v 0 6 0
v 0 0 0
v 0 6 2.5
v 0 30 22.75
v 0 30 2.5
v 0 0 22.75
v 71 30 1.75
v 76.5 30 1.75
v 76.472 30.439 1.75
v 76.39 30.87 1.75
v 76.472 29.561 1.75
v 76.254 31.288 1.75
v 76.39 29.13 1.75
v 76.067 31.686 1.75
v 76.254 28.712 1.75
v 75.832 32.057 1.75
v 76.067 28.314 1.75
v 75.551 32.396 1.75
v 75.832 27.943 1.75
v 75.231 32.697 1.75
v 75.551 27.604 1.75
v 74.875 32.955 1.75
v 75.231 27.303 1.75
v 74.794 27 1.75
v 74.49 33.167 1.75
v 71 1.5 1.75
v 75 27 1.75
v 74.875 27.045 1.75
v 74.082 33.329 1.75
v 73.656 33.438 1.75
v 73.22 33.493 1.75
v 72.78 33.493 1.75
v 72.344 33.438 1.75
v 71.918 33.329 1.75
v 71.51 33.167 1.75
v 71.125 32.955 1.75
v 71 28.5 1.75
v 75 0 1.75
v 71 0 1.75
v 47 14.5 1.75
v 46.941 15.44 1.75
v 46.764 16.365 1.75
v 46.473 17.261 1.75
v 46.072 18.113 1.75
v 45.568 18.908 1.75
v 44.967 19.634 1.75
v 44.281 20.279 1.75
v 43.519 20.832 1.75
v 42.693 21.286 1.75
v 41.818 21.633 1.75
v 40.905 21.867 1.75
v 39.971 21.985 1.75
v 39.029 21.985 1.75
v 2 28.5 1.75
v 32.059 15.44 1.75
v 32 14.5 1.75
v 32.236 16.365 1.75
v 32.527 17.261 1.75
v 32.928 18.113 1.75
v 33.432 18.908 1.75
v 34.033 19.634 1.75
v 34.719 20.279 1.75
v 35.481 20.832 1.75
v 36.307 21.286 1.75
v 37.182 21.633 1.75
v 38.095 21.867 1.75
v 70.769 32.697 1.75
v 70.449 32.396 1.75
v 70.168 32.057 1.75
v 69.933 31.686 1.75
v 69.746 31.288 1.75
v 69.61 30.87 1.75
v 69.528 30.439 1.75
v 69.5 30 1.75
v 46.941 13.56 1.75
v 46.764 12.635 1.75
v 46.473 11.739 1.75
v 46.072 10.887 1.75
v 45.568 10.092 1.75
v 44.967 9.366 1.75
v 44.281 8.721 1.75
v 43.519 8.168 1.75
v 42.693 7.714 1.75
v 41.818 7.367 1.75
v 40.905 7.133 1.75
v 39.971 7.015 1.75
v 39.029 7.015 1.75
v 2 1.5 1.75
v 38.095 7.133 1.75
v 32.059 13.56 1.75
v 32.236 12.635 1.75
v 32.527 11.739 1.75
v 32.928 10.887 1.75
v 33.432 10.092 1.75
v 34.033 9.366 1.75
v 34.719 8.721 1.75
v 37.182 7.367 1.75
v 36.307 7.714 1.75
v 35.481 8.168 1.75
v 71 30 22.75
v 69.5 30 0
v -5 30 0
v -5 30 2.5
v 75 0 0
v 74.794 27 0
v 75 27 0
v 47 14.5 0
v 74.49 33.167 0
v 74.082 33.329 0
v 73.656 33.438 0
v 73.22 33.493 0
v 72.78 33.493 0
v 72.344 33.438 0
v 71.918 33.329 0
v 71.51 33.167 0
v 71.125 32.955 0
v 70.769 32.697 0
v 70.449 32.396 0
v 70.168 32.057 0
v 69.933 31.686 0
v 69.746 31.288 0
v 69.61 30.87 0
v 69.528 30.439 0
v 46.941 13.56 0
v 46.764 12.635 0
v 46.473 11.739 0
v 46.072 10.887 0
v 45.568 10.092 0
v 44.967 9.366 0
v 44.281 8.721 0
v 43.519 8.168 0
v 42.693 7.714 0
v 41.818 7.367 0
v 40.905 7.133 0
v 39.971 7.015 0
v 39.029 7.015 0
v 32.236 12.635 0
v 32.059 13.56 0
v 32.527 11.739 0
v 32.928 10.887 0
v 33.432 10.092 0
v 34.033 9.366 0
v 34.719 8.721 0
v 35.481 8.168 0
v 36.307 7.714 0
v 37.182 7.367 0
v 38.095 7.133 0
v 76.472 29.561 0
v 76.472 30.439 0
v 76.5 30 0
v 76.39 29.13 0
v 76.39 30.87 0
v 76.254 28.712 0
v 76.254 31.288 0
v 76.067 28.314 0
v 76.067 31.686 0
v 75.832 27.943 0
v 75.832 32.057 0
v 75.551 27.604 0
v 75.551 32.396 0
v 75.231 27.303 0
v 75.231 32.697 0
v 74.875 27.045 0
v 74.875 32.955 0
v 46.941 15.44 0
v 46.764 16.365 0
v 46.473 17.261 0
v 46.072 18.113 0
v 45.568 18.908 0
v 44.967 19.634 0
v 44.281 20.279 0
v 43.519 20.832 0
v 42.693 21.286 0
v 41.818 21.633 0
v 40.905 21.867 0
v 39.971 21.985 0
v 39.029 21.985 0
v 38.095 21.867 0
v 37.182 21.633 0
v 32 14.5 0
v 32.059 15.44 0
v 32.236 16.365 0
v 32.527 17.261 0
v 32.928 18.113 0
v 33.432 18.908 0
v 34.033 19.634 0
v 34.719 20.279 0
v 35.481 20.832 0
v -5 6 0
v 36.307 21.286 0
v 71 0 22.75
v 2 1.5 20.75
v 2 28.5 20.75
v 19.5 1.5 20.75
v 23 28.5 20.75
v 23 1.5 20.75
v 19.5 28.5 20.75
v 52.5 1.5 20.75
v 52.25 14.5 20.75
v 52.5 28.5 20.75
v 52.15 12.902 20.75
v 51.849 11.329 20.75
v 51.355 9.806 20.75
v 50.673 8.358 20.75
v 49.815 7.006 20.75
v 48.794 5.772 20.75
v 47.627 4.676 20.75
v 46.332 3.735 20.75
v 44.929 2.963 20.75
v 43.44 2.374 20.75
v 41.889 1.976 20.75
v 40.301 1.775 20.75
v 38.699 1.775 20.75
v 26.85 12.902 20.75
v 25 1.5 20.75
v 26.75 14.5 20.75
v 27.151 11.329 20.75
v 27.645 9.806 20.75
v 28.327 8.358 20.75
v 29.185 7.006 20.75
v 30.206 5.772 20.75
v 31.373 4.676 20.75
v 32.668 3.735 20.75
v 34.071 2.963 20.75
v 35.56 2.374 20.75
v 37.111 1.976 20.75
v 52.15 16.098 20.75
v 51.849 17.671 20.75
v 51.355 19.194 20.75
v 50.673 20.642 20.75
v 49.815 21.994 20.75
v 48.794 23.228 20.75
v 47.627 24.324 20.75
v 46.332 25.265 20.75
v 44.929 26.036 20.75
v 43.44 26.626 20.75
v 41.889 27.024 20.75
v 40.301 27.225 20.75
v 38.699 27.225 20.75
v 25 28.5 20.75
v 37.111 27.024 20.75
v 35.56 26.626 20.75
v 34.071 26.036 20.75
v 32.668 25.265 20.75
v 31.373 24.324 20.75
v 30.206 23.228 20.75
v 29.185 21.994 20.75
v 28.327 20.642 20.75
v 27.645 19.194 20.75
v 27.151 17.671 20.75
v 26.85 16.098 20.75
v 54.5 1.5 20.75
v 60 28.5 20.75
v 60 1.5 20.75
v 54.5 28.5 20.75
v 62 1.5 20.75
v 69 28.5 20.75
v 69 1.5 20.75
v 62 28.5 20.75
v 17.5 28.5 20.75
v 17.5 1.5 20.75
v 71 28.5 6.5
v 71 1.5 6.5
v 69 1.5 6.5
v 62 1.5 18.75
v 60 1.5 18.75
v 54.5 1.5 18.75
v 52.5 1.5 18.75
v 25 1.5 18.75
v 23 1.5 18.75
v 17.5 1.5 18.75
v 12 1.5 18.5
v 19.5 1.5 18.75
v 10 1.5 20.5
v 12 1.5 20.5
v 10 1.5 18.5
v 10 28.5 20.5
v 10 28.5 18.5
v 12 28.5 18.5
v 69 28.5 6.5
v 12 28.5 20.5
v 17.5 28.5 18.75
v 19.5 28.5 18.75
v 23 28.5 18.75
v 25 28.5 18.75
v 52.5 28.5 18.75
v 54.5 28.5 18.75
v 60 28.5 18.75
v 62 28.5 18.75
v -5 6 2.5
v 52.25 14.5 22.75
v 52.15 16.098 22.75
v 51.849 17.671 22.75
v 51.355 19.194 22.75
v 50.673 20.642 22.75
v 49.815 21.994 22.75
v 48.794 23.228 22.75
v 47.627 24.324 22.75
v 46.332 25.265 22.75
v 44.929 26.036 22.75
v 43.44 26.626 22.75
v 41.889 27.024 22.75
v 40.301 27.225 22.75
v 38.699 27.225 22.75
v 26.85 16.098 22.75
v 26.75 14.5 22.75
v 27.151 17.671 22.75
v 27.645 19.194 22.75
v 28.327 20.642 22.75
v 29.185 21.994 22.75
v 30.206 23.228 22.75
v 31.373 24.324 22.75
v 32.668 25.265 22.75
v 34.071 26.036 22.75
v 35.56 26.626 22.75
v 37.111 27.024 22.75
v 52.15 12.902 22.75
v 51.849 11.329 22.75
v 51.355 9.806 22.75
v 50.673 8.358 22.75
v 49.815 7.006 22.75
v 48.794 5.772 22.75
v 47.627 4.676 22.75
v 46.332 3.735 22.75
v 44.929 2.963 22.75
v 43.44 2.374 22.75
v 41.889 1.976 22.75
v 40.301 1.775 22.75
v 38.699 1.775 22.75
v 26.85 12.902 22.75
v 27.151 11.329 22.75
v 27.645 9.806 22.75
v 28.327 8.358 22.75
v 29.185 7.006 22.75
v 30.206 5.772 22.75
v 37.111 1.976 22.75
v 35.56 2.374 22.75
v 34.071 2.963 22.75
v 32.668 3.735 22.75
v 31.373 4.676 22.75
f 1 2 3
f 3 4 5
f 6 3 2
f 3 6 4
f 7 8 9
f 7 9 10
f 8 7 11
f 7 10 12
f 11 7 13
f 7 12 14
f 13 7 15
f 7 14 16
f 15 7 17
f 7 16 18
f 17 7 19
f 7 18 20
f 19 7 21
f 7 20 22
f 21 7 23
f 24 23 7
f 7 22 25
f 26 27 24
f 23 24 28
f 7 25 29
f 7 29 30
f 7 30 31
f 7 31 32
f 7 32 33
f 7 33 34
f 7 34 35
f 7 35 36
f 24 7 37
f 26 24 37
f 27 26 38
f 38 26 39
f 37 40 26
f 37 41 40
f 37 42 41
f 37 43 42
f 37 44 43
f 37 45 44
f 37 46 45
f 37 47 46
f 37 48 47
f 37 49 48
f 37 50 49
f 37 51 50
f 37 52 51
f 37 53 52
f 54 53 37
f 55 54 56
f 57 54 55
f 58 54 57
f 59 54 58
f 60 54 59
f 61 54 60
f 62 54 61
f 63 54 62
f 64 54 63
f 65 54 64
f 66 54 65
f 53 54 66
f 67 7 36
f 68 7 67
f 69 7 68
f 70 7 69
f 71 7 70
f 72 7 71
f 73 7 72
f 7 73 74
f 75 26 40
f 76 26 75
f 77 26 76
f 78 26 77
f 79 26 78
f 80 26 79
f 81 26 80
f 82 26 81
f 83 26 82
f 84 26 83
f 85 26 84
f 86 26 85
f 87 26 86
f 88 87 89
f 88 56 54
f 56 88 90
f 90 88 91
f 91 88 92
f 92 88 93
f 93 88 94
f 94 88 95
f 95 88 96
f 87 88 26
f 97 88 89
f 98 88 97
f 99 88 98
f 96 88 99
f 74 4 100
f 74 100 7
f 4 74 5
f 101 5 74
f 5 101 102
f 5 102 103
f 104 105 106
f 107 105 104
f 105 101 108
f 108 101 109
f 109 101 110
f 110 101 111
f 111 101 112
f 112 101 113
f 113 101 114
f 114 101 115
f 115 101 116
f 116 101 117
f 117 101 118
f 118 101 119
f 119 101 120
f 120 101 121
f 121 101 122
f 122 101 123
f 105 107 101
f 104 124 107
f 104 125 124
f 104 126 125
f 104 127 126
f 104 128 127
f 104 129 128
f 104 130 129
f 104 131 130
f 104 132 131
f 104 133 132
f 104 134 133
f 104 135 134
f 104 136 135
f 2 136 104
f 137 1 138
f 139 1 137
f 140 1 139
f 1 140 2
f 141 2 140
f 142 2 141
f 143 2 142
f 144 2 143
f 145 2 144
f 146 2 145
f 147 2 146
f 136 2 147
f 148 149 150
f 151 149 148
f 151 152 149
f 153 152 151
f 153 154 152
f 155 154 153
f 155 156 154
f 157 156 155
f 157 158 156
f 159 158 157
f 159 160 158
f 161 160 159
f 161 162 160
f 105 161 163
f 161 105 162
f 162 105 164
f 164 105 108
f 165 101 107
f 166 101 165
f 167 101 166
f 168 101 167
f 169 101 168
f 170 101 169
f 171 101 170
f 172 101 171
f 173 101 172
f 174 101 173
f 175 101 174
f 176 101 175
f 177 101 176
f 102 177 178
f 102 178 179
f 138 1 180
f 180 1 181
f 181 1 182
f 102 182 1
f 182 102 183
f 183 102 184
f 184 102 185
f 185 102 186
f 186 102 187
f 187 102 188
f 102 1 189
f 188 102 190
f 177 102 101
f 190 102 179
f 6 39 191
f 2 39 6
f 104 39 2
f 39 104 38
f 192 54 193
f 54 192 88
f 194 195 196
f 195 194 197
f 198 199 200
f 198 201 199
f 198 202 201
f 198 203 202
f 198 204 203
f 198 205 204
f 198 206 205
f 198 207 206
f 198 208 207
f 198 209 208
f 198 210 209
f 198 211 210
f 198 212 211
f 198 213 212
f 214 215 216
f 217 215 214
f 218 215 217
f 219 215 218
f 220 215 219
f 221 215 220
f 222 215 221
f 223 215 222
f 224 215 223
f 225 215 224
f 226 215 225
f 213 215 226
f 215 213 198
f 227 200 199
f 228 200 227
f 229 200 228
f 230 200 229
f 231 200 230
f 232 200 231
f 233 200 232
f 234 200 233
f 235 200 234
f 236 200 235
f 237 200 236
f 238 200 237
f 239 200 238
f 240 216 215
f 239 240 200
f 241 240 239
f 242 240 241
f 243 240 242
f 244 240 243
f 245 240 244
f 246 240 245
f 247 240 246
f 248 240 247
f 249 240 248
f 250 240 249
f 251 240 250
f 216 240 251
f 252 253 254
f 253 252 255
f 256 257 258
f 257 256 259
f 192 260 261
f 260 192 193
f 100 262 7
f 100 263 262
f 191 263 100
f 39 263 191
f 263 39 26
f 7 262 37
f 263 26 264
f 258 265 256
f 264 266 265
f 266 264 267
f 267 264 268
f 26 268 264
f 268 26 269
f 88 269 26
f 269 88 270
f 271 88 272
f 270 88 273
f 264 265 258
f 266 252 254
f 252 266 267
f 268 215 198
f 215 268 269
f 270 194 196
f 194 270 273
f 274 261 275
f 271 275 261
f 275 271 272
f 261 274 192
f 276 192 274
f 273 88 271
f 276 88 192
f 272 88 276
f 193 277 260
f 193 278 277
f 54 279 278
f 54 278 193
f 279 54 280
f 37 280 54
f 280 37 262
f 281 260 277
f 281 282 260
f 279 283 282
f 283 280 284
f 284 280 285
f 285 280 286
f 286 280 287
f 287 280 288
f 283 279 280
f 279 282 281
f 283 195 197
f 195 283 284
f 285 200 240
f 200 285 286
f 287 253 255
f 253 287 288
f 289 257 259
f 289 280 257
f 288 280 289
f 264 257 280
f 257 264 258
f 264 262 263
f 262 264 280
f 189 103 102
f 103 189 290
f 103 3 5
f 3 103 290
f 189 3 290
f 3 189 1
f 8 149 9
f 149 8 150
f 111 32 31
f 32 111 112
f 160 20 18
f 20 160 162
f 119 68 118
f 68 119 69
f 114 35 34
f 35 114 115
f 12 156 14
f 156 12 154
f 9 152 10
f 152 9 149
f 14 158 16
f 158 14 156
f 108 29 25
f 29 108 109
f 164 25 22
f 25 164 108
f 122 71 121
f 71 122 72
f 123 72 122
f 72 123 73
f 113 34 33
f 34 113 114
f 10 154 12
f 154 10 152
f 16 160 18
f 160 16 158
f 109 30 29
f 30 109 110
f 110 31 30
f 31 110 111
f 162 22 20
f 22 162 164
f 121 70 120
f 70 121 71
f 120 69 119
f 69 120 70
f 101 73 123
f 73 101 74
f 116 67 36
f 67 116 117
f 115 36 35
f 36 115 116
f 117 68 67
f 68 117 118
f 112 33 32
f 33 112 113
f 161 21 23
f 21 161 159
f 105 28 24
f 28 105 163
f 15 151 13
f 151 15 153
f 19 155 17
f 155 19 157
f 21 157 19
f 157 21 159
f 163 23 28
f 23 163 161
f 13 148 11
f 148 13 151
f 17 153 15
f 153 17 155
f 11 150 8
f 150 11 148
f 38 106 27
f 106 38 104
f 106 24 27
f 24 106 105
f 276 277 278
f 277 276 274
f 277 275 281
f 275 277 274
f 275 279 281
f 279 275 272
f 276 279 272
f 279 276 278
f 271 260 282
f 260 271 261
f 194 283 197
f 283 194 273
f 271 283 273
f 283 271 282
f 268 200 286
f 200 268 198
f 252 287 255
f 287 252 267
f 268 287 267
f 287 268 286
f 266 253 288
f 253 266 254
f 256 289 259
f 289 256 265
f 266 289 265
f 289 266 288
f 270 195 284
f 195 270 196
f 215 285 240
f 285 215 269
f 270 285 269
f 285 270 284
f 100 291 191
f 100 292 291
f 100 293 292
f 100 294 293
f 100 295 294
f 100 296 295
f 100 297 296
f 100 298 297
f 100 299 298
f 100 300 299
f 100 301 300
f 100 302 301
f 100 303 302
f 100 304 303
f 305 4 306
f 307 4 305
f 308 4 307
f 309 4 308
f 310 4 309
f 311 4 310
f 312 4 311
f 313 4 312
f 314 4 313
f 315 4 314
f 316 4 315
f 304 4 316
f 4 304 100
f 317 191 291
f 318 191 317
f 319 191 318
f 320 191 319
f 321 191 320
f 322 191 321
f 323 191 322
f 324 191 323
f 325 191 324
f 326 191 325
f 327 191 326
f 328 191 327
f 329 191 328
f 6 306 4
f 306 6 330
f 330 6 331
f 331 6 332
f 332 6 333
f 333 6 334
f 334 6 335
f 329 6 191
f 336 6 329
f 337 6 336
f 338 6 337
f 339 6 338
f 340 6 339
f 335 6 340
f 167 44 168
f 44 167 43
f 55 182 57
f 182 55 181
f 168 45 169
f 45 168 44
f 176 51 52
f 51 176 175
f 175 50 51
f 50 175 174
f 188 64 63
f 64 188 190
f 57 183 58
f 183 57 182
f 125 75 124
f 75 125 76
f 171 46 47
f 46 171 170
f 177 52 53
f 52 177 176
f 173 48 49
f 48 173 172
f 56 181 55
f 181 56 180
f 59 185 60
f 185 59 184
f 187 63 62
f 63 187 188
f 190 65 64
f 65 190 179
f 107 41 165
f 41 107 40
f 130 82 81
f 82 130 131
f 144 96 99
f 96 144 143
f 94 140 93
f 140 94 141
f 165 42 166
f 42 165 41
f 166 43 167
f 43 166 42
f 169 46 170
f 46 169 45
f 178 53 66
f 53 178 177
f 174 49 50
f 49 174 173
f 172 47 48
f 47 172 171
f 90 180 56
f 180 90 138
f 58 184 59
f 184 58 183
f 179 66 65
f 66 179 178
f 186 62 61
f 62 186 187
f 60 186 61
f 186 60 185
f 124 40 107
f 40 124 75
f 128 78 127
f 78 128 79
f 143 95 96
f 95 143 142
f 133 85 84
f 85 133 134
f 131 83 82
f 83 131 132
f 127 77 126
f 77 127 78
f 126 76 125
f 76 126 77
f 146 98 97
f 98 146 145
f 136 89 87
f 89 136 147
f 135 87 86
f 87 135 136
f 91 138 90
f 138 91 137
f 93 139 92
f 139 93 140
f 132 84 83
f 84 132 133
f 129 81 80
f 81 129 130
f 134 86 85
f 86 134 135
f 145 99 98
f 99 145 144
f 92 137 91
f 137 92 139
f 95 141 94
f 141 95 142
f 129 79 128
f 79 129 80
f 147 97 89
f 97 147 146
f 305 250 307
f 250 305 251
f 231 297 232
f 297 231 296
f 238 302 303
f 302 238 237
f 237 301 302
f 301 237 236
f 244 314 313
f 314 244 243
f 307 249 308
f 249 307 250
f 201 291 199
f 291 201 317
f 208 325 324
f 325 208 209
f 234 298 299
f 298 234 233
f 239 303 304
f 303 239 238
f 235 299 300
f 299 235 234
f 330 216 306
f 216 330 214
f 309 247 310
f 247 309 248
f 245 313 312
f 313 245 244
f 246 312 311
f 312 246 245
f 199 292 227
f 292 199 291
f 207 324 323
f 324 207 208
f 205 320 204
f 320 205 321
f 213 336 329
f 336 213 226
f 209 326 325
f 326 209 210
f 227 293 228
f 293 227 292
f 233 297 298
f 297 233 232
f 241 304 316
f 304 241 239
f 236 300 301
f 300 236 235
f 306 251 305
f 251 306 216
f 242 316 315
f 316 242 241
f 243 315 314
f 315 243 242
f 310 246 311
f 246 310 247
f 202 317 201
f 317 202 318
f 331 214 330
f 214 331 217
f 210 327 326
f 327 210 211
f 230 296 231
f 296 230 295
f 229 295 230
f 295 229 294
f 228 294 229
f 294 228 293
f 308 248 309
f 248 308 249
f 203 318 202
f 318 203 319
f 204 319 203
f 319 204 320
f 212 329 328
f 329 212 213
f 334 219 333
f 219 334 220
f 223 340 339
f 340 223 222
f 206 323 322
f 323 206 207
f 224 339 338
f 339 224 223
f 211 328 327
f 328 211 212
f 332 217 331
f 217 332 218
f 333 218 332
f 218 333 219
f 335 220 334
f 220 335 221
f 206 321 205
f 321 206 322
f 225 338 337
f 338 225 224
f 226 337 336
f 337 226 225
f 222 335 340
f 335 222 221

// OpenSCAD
// Gimme Shelter Box
difference() {
    union() {
        // GSB Base
        cube([73,30,1.75]);
        
        // GSB Sides
        translate([2, 0, 1.75]) {
            color([1,0,0])
            cube([69,1.5,19]);
        }
        translate([2, 28.5, 1.75]) {
            color([0,0,1])
            cube([69,1.5,19]);
        }
       // GSB Rear
       translate([0, 0, 1.75]) {
             color([0,1,0])
             cube([2,30,19]);
       }
       
       // GSB Front
       translate([69, 1.5, 6.5]) {
             color([1,1,1])
             cube([2,27,14.25]);
       }
       
       // Left caliper hard point
       translate([-5,6,0]) {
           color([1,0,1])
           cube([5,24,2.5]);
       }
       
       // Right caliper hard point circle
       translate([73,30,0]) {
           color([0,1,1])
           cylinder(h=1.75, d=7, $fn=50);
       }
       
       // Right caliper hard point rectangle
       translate([73,0,0]) {
           color([1,1,0])
           cube([2,27,1.75]);
       }
       // GSB Top Supports
       translate([10, 1.5, 18.5]) {
             color([0,1,1])
             cube([2,27,2]);
       }
       
       translate([17.5, 1.5, 18.75]) {
             color([0,1,1])
             cube([2,27,2]);
       }
  
       translate([52.5, 1.5, 18.75]) {
             color([0,1,1])
             cube([2,27,2]);
       }
       translate([60, 1.5, 18.75]) {
             color([0,1,1])
             cube([2,27,2]);
       }
       translate([23, 1.5, 18.75]) {
             color([0,1,1])
             cube([2,27,2]);
       }
       // GSB Top
       translate([0,0,20.75]) {
        color([1,.5,.5])
        cube([71,30,2]);
       }
    }
    // Slide Well
    translate([39.5,14.5,-1]) cylinder(h=8, d=15,
    $fn=50);
    
    // Objective Hole
     // Slide Well
    translate([39.5,14.5,19]) cylinder(h=8, d=25.5,
    $fn=50);
}
